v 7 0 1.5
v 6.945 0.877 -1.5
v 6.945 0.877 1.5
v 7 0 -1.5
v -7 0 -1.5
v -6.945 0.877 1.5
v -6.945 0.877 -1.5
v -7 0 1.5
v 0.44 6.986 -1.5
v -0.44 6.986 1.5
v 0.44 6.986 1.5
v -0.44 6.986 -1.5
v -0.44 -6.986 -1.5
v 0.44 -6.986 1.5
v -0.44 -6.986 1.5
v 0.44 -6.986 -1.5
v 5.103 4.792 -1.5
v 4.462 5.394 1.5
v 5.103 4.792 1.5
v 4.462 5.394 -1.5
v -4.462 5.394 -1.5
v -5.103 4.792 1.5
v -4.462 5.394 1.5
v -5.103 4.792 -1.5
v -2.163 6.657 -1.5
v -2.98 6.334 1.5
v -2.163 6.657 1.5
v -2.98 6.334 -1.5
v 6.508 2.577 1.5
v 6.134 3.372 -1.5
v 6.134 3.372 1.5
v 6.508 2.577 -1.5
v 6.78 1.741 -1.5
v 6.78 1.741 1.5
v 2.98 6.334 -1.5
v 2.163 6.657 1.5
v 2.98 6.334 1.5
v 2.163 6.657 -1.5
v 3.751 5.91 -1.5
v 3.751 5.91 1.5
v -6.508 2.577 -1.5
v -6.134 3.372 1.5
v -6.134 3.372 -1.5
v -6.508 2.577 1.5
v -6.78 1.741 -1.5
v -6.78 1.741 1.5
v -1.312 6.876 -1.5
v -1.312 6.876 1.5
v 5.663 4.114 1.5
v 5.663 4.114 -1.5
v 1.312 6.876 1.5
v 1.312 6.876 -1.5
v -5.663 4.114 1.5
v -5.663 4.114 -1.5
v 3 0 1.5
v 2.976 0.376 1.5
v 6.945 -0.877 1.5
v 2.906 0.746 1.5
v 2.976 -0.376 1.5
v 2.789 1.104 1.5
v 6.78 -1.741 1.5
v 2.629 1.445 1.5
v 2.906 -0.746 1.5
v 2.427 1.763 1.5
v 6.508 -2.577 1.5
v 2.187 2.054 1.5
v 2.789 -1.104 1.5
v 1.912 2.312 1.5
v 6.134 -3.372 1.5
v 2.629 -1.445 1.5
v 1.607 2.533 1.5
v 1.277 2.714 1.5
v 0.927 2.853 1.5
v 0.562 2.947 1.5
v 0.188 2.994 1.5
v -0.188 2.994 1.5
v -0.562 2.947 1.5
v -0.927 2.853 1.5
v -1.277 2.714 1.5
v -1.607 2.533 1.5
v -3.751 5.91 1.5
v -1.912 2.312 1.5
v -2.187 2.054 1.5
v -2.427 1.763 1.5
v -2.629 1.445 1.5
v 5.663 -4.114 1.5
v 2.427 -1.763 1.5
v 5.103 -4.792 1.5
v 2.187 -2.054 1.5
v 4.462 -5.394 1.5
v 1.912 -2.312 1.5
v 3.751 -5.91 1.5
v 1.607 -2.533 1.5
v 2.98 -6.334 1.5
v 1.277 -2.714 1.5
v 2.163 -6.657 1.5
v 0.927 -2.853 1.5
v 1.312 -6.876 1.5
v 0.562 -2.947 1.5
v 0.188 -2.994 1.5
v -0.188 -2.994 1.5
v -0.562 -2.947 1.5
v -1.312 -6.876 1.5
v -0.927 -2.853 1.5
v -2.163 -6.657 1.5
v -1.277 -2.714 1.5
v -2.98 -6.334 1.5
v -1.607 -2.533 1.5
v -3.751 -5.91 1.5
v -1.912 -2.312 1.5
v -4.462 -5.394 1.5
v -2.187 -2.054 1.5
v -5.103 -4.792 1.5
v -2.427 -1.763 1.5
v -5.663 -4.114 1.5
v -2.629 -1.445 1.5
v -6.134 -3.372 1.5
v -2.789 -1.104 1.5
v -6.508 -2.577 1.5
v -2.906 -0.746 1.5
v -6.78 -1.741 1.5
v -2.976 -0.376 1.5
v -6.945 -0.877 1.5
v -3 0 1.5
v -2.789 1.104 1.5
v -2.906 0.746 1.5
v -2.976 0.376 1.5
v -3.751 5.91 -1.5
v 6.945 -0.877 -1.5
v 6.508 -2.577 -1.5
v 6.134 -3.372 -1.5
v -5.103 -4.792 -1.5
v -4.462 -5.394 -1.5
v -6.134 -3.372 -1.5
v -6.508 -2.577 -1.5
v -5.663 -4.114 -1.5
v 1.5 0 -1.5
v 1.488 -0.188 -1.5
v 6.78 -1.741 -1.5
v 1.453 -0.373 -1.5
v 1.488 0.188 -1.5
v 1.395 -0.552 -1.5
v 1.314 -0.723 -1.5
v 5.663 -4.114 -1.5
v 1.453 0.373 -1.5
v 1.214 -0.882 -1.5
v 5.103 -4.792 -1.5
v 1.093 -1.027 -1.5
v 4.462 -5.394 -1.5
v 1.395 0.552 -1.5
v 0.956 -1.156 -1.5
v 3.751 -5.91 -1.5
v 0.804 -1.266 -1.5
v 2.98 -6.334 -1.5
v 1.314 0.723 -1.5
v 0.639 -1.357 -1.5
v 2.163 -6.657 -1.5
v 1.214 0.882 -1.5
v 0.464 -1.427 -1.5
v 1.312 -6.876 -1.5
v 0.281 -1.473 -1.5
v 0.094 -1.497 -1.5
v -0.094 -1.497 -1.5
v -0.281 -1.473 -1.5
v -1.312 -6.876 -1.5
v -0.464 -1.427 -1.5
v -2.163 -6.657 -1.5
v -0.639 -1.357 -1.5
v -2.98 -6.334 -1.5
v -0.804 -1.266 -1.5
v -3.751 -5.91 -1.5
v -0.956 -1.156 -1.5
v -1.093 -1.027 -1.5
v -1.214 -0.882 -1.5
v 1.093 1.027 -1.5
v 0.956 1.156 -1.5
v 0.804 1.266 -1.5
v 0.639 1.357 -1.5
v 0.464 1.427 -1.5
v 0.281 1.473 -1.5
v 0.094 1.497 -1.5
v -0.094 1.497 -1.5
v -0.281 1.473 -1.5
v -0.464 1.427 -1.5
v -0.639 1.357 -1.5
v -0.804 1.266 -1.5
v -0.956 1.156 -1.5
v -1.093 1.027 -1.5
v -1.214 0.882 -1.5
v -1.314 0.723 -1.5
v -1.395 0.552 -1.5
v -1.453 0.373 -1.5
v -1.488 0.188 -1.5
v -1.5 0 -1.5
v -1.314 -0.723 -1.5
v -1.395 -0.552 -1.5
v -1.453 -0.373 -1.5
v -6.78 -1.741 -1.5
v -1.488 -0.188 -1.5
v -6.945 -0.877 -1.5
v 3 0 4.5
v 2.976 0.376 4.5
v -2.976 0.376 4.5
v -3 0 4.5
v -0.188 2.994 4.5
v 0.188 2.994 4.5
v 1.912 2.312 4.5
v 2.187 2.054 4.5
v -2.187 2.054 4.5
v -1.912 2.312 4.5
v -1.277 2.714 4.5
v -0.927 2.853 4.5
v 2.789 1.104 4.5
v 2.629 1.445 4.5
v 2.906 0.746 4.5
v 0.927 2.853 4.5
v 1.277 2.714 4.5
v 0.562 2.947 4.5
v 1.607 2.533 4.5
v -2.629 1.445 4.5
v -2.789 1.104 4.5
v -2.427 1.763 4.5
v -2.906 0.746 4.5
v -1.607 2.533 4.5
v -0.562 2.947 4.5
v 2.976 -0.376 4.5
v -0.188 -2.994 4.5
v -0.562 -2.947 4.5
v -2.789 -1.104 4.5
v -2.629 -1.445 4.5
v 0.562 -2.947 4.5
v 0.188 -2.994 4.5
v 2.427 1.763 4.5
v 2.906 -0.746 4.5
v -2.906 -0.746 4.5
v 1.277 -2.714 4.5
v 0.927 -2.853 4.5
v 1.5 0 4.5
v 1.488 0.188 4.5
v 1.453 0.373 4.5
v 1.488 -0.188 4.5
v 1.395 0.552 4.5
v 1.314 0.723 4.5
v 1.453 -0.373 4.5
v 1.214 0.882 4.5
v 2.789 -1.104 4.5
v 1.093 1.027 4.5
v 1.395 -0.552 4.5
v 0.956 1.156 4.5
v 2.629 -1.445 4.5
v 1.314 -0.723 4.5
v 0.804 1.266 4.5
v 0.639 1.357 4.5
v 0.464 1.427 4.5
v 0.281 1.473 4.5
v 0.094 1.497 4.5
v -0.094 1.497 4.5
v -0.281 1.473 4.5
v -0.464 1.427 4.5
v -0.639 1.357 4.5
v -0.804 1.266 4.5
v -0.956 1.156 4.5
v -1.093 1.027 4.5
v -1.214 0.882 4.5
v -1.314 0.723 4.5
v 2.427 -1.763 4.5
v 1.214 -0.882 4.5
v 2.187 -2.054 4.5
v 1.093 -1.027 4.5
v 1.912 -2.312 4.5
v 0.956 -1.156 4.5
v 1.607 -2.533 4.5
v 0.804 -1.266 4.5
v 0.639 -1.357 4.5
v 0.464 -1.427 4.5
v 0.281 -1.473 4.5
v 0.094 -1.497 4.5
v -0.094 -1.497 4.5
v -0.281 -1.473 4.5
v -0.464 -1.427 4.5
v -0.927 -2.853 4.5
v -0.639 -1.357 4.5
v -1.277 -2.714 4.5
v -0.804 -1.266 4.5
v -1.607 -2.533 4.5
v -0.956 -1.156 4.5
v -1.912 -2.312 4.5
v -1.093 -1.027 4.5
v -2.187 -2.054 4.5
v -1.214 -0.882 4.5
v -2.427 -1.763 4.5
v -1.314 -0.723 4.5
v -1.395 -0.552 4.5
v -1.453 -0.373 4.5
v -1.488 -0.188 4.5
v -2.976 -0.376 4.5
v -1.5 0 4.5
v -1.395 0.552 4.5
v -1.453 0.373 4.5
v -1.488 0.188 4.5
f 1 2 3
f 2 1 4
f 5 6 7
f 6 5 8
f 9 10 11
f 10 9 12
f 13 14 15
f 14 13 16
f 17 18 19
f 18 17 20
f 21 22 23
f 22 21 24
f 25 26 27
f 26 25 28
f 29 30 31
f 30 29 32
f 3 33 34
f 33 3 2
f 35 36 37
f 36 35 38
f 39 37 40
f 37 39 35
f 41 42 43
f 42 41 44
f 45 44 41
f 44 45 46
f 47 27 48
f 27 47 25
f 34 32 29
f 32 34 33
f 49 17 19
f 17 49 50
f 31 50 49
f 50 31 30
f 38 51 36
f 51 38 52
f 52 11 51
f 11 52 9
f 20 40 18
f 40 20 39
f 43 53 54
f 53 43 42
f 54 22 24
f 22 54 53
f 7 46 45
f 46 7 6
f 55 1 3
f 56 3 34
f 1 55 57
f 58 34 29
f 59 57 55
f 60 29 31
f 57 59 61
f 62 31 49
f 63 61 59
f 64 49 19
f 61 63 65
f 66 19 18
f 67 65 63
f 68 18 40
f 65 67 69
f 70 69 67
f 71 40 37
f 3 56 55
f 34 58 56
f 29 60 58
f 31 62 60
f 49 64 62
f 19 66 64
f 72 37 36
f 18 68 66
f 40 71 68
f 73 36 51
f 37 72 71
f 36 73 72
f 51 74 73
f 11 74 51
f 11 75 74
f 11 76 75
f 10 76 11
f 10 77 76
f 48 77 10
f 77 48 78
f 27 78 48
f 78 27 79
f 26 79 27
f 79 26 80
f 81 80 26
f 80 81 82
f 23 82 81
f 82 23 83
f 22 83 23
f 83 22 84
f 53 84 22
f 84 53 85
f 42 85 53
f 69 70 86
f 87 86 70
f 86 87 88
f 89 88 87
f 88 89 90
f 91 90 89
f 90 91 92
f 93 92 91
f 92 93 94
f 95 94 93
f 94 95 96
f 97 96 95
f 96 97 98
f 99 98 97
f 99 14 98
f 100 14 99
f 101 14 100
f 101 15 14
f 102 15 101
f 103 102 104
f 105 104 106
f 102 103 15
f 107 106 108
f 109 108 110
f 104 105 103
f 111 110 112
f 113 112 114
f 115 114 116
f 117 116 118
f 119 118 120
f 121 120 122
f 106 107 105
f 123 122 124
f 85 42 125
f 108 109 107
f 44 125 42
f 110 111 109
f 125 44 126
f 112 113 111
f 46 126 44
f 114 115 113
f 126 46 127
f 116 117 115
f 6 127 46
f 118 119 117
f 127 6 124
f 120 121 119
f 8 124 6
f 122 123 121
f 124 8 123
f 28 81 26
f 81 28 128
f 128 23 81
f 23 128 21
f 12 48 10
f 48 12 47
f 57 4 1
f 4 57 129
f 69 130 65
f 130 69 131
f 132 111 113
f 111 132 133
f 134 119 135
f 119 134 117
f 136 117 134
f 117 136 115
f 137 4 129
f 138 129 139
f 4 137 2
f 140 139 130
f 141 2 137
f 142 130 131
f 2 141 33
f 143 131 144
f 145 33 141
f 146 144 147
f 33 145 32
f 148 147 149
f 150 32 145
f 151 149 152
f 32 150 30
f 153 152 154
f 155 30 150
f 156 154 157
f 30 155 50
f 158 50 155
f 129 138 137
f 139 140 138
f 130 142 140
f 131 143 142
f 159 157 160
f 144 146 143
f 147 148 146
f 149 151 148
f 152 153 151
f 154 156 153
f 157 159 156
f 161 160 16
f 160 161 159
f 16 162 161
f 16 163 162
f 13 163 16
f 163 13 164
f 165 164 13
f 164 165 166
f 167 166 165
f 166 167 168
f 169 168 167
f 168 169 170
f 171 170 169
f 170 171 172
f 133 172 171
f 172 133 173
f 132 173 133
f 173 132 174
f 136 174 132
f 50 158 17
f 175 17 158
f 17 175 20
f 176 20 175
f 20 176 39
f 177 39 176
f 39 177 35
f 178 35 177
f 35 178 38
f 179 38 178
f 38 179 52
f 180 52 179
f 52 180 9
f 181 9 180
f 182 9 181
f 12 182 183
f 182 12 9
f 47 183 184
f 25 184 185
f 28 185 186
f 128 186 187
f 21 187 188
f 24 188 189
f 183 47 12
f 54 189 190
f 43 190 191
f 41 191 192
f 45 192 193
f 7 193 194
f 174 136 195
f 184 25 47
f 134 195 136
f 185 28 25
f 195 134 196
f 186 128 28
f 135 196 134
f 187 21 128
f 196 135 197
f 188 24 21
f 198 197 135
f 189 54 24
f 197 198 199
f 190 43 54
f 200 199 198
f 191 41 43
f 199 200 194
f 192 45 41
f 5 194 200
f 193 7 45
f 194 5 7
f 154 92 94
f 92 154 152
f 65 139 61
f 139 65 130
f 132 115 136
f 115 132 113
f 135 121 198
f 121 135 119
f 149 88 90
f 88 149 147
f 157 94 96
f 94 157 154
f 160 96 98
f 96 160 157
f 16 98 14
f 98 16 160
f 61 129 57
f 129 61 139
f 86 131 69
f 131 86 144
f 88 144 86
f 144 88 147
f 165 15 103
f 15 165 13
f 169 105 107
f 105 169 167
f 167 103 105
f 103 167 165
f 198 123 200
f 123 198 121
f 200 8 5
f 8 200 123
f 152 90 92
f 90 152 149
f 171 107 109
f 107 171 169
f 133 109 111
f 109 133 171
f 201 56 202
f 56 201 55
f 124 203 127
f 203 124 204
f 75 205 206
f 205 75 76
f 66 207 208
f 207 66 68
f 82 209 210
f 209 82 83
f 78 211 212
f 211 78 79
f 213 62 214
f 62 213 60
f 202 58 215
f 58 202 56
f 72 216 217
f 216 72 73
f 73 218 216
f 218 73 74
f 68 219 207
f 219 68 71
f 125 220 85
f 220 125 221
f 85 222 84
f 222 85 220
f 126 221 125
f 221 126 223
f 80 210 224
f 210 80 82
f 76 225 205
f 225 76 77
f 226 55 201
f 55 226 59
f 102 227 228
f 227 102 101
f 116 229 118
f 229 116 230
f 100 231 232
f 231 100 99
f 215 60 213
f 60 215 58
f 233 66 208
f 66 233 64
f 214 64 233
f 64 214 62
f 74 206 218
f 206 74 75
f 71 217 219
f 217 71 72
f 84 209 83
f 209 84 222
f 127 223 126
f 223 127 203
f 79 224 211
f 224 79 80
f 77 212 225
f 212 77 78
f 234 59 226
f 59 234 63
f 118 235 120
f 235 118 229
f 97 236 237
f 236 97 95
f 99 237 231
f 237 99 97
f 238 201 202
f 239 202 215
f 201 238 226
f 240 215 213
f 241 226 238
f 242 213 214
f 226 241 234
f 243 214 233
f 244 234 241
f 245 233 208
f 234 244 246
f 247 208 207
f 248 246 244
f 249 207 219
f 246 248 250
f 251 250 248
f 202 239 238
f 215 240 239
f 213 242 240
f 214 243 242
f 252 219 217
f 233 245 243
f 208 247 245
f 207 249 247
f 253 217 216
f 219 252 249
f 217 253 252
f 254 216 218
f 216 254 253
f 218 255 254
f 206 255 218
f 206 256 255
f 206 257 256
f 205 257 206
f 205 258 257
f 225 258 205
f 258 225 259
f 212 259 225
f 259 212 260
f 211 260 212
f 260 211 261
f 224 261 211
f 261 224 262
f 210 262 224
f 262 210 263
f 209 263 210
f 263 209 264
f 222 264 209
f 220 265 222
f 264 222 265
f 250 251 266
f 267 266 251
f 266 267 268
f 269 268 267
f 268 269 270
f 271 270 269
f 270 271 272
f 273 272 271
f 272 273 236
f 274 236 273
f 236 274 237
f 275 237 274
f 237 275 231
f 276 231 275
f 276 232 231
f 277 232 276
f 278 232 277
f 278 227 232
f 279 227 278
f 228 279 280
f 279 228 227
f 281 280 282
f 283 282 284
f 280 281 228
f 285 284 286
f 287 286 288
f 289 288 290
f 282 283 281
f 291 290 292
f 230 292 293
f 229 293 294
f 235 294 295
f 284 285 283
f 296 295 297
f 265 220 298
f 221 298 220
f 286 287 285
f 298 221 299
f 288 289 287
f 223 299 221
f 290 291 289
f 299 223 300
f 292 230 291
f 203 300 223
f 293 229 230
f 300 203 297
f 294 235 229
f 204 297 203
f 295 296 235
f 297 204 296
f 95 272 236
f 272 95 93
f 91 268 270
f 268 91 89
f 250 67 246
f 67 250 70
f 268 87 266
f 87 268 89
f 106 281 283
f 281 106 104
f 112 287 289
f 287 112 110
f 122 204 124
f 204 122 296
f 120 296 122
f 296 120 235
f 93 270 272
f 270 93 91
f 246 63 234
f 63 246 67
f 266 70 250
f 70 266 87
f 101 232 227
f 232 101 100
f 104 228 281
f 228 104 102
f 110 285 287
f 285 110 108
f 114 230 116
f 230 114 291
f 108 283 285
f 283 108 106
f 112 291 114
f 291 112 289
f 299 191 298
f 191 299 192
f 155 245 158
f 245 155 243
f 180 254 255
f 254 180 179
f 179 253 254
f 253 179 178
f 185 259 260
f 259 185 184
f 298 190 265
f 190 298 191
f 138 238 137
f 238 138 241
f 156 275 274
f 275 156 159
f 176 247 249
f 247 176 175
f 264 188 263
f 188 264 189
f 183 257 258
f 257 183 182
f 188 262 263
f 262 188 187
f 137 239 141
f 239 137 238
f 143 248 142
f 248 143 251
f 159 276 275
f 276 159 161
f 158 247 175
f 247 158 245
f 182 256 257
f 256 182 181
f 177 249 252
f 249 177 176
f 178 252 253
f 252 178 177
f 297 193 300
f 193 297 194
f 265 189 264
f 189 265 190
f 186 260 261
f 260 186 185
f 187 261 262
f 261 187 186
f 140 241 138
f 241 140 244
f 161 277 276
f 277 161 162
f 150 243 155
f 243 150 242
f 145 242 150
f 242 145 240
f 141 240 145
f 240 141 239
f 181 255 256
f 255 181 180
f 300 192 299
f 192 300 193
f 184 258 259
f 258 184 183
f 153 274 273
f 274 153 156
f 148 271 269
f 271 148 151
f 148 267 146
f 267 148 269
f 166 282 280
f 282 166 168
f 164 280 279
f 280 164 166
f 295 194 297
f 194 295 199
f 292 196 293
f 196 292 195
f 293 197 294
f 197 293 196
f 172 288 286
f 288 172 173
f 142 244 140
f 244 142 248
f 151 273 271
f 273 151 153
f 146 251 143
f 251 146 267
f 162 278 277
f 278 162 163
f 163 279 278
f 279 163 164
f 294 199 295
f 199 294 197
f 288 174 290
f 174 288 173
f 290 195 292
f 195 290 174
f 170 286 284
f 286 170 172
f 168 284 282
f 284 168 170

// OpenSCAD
$fn = 50;


difference() {
	union() {
		translate(v = [0, 0, -1.5000000000]) {
			rotate(a = [0, 0, 0]) {
				cylinder(h = 3, r = 7.0000000000);
			}
		}
		translate(v = [0, 0, -1.5000000000]) {
			rotate(a = [0, 0, 0]) {
				cylinder(h = 6, r = 3.0000000000);
			}
		}
	}
	union() {
		translate(v = [0, 0, -125.0000000000]) {
			rotate(a = [0, 0, 0]) {
				cylinder(h = 250, r = 1.5000000000);
			}
		}
	}
}
